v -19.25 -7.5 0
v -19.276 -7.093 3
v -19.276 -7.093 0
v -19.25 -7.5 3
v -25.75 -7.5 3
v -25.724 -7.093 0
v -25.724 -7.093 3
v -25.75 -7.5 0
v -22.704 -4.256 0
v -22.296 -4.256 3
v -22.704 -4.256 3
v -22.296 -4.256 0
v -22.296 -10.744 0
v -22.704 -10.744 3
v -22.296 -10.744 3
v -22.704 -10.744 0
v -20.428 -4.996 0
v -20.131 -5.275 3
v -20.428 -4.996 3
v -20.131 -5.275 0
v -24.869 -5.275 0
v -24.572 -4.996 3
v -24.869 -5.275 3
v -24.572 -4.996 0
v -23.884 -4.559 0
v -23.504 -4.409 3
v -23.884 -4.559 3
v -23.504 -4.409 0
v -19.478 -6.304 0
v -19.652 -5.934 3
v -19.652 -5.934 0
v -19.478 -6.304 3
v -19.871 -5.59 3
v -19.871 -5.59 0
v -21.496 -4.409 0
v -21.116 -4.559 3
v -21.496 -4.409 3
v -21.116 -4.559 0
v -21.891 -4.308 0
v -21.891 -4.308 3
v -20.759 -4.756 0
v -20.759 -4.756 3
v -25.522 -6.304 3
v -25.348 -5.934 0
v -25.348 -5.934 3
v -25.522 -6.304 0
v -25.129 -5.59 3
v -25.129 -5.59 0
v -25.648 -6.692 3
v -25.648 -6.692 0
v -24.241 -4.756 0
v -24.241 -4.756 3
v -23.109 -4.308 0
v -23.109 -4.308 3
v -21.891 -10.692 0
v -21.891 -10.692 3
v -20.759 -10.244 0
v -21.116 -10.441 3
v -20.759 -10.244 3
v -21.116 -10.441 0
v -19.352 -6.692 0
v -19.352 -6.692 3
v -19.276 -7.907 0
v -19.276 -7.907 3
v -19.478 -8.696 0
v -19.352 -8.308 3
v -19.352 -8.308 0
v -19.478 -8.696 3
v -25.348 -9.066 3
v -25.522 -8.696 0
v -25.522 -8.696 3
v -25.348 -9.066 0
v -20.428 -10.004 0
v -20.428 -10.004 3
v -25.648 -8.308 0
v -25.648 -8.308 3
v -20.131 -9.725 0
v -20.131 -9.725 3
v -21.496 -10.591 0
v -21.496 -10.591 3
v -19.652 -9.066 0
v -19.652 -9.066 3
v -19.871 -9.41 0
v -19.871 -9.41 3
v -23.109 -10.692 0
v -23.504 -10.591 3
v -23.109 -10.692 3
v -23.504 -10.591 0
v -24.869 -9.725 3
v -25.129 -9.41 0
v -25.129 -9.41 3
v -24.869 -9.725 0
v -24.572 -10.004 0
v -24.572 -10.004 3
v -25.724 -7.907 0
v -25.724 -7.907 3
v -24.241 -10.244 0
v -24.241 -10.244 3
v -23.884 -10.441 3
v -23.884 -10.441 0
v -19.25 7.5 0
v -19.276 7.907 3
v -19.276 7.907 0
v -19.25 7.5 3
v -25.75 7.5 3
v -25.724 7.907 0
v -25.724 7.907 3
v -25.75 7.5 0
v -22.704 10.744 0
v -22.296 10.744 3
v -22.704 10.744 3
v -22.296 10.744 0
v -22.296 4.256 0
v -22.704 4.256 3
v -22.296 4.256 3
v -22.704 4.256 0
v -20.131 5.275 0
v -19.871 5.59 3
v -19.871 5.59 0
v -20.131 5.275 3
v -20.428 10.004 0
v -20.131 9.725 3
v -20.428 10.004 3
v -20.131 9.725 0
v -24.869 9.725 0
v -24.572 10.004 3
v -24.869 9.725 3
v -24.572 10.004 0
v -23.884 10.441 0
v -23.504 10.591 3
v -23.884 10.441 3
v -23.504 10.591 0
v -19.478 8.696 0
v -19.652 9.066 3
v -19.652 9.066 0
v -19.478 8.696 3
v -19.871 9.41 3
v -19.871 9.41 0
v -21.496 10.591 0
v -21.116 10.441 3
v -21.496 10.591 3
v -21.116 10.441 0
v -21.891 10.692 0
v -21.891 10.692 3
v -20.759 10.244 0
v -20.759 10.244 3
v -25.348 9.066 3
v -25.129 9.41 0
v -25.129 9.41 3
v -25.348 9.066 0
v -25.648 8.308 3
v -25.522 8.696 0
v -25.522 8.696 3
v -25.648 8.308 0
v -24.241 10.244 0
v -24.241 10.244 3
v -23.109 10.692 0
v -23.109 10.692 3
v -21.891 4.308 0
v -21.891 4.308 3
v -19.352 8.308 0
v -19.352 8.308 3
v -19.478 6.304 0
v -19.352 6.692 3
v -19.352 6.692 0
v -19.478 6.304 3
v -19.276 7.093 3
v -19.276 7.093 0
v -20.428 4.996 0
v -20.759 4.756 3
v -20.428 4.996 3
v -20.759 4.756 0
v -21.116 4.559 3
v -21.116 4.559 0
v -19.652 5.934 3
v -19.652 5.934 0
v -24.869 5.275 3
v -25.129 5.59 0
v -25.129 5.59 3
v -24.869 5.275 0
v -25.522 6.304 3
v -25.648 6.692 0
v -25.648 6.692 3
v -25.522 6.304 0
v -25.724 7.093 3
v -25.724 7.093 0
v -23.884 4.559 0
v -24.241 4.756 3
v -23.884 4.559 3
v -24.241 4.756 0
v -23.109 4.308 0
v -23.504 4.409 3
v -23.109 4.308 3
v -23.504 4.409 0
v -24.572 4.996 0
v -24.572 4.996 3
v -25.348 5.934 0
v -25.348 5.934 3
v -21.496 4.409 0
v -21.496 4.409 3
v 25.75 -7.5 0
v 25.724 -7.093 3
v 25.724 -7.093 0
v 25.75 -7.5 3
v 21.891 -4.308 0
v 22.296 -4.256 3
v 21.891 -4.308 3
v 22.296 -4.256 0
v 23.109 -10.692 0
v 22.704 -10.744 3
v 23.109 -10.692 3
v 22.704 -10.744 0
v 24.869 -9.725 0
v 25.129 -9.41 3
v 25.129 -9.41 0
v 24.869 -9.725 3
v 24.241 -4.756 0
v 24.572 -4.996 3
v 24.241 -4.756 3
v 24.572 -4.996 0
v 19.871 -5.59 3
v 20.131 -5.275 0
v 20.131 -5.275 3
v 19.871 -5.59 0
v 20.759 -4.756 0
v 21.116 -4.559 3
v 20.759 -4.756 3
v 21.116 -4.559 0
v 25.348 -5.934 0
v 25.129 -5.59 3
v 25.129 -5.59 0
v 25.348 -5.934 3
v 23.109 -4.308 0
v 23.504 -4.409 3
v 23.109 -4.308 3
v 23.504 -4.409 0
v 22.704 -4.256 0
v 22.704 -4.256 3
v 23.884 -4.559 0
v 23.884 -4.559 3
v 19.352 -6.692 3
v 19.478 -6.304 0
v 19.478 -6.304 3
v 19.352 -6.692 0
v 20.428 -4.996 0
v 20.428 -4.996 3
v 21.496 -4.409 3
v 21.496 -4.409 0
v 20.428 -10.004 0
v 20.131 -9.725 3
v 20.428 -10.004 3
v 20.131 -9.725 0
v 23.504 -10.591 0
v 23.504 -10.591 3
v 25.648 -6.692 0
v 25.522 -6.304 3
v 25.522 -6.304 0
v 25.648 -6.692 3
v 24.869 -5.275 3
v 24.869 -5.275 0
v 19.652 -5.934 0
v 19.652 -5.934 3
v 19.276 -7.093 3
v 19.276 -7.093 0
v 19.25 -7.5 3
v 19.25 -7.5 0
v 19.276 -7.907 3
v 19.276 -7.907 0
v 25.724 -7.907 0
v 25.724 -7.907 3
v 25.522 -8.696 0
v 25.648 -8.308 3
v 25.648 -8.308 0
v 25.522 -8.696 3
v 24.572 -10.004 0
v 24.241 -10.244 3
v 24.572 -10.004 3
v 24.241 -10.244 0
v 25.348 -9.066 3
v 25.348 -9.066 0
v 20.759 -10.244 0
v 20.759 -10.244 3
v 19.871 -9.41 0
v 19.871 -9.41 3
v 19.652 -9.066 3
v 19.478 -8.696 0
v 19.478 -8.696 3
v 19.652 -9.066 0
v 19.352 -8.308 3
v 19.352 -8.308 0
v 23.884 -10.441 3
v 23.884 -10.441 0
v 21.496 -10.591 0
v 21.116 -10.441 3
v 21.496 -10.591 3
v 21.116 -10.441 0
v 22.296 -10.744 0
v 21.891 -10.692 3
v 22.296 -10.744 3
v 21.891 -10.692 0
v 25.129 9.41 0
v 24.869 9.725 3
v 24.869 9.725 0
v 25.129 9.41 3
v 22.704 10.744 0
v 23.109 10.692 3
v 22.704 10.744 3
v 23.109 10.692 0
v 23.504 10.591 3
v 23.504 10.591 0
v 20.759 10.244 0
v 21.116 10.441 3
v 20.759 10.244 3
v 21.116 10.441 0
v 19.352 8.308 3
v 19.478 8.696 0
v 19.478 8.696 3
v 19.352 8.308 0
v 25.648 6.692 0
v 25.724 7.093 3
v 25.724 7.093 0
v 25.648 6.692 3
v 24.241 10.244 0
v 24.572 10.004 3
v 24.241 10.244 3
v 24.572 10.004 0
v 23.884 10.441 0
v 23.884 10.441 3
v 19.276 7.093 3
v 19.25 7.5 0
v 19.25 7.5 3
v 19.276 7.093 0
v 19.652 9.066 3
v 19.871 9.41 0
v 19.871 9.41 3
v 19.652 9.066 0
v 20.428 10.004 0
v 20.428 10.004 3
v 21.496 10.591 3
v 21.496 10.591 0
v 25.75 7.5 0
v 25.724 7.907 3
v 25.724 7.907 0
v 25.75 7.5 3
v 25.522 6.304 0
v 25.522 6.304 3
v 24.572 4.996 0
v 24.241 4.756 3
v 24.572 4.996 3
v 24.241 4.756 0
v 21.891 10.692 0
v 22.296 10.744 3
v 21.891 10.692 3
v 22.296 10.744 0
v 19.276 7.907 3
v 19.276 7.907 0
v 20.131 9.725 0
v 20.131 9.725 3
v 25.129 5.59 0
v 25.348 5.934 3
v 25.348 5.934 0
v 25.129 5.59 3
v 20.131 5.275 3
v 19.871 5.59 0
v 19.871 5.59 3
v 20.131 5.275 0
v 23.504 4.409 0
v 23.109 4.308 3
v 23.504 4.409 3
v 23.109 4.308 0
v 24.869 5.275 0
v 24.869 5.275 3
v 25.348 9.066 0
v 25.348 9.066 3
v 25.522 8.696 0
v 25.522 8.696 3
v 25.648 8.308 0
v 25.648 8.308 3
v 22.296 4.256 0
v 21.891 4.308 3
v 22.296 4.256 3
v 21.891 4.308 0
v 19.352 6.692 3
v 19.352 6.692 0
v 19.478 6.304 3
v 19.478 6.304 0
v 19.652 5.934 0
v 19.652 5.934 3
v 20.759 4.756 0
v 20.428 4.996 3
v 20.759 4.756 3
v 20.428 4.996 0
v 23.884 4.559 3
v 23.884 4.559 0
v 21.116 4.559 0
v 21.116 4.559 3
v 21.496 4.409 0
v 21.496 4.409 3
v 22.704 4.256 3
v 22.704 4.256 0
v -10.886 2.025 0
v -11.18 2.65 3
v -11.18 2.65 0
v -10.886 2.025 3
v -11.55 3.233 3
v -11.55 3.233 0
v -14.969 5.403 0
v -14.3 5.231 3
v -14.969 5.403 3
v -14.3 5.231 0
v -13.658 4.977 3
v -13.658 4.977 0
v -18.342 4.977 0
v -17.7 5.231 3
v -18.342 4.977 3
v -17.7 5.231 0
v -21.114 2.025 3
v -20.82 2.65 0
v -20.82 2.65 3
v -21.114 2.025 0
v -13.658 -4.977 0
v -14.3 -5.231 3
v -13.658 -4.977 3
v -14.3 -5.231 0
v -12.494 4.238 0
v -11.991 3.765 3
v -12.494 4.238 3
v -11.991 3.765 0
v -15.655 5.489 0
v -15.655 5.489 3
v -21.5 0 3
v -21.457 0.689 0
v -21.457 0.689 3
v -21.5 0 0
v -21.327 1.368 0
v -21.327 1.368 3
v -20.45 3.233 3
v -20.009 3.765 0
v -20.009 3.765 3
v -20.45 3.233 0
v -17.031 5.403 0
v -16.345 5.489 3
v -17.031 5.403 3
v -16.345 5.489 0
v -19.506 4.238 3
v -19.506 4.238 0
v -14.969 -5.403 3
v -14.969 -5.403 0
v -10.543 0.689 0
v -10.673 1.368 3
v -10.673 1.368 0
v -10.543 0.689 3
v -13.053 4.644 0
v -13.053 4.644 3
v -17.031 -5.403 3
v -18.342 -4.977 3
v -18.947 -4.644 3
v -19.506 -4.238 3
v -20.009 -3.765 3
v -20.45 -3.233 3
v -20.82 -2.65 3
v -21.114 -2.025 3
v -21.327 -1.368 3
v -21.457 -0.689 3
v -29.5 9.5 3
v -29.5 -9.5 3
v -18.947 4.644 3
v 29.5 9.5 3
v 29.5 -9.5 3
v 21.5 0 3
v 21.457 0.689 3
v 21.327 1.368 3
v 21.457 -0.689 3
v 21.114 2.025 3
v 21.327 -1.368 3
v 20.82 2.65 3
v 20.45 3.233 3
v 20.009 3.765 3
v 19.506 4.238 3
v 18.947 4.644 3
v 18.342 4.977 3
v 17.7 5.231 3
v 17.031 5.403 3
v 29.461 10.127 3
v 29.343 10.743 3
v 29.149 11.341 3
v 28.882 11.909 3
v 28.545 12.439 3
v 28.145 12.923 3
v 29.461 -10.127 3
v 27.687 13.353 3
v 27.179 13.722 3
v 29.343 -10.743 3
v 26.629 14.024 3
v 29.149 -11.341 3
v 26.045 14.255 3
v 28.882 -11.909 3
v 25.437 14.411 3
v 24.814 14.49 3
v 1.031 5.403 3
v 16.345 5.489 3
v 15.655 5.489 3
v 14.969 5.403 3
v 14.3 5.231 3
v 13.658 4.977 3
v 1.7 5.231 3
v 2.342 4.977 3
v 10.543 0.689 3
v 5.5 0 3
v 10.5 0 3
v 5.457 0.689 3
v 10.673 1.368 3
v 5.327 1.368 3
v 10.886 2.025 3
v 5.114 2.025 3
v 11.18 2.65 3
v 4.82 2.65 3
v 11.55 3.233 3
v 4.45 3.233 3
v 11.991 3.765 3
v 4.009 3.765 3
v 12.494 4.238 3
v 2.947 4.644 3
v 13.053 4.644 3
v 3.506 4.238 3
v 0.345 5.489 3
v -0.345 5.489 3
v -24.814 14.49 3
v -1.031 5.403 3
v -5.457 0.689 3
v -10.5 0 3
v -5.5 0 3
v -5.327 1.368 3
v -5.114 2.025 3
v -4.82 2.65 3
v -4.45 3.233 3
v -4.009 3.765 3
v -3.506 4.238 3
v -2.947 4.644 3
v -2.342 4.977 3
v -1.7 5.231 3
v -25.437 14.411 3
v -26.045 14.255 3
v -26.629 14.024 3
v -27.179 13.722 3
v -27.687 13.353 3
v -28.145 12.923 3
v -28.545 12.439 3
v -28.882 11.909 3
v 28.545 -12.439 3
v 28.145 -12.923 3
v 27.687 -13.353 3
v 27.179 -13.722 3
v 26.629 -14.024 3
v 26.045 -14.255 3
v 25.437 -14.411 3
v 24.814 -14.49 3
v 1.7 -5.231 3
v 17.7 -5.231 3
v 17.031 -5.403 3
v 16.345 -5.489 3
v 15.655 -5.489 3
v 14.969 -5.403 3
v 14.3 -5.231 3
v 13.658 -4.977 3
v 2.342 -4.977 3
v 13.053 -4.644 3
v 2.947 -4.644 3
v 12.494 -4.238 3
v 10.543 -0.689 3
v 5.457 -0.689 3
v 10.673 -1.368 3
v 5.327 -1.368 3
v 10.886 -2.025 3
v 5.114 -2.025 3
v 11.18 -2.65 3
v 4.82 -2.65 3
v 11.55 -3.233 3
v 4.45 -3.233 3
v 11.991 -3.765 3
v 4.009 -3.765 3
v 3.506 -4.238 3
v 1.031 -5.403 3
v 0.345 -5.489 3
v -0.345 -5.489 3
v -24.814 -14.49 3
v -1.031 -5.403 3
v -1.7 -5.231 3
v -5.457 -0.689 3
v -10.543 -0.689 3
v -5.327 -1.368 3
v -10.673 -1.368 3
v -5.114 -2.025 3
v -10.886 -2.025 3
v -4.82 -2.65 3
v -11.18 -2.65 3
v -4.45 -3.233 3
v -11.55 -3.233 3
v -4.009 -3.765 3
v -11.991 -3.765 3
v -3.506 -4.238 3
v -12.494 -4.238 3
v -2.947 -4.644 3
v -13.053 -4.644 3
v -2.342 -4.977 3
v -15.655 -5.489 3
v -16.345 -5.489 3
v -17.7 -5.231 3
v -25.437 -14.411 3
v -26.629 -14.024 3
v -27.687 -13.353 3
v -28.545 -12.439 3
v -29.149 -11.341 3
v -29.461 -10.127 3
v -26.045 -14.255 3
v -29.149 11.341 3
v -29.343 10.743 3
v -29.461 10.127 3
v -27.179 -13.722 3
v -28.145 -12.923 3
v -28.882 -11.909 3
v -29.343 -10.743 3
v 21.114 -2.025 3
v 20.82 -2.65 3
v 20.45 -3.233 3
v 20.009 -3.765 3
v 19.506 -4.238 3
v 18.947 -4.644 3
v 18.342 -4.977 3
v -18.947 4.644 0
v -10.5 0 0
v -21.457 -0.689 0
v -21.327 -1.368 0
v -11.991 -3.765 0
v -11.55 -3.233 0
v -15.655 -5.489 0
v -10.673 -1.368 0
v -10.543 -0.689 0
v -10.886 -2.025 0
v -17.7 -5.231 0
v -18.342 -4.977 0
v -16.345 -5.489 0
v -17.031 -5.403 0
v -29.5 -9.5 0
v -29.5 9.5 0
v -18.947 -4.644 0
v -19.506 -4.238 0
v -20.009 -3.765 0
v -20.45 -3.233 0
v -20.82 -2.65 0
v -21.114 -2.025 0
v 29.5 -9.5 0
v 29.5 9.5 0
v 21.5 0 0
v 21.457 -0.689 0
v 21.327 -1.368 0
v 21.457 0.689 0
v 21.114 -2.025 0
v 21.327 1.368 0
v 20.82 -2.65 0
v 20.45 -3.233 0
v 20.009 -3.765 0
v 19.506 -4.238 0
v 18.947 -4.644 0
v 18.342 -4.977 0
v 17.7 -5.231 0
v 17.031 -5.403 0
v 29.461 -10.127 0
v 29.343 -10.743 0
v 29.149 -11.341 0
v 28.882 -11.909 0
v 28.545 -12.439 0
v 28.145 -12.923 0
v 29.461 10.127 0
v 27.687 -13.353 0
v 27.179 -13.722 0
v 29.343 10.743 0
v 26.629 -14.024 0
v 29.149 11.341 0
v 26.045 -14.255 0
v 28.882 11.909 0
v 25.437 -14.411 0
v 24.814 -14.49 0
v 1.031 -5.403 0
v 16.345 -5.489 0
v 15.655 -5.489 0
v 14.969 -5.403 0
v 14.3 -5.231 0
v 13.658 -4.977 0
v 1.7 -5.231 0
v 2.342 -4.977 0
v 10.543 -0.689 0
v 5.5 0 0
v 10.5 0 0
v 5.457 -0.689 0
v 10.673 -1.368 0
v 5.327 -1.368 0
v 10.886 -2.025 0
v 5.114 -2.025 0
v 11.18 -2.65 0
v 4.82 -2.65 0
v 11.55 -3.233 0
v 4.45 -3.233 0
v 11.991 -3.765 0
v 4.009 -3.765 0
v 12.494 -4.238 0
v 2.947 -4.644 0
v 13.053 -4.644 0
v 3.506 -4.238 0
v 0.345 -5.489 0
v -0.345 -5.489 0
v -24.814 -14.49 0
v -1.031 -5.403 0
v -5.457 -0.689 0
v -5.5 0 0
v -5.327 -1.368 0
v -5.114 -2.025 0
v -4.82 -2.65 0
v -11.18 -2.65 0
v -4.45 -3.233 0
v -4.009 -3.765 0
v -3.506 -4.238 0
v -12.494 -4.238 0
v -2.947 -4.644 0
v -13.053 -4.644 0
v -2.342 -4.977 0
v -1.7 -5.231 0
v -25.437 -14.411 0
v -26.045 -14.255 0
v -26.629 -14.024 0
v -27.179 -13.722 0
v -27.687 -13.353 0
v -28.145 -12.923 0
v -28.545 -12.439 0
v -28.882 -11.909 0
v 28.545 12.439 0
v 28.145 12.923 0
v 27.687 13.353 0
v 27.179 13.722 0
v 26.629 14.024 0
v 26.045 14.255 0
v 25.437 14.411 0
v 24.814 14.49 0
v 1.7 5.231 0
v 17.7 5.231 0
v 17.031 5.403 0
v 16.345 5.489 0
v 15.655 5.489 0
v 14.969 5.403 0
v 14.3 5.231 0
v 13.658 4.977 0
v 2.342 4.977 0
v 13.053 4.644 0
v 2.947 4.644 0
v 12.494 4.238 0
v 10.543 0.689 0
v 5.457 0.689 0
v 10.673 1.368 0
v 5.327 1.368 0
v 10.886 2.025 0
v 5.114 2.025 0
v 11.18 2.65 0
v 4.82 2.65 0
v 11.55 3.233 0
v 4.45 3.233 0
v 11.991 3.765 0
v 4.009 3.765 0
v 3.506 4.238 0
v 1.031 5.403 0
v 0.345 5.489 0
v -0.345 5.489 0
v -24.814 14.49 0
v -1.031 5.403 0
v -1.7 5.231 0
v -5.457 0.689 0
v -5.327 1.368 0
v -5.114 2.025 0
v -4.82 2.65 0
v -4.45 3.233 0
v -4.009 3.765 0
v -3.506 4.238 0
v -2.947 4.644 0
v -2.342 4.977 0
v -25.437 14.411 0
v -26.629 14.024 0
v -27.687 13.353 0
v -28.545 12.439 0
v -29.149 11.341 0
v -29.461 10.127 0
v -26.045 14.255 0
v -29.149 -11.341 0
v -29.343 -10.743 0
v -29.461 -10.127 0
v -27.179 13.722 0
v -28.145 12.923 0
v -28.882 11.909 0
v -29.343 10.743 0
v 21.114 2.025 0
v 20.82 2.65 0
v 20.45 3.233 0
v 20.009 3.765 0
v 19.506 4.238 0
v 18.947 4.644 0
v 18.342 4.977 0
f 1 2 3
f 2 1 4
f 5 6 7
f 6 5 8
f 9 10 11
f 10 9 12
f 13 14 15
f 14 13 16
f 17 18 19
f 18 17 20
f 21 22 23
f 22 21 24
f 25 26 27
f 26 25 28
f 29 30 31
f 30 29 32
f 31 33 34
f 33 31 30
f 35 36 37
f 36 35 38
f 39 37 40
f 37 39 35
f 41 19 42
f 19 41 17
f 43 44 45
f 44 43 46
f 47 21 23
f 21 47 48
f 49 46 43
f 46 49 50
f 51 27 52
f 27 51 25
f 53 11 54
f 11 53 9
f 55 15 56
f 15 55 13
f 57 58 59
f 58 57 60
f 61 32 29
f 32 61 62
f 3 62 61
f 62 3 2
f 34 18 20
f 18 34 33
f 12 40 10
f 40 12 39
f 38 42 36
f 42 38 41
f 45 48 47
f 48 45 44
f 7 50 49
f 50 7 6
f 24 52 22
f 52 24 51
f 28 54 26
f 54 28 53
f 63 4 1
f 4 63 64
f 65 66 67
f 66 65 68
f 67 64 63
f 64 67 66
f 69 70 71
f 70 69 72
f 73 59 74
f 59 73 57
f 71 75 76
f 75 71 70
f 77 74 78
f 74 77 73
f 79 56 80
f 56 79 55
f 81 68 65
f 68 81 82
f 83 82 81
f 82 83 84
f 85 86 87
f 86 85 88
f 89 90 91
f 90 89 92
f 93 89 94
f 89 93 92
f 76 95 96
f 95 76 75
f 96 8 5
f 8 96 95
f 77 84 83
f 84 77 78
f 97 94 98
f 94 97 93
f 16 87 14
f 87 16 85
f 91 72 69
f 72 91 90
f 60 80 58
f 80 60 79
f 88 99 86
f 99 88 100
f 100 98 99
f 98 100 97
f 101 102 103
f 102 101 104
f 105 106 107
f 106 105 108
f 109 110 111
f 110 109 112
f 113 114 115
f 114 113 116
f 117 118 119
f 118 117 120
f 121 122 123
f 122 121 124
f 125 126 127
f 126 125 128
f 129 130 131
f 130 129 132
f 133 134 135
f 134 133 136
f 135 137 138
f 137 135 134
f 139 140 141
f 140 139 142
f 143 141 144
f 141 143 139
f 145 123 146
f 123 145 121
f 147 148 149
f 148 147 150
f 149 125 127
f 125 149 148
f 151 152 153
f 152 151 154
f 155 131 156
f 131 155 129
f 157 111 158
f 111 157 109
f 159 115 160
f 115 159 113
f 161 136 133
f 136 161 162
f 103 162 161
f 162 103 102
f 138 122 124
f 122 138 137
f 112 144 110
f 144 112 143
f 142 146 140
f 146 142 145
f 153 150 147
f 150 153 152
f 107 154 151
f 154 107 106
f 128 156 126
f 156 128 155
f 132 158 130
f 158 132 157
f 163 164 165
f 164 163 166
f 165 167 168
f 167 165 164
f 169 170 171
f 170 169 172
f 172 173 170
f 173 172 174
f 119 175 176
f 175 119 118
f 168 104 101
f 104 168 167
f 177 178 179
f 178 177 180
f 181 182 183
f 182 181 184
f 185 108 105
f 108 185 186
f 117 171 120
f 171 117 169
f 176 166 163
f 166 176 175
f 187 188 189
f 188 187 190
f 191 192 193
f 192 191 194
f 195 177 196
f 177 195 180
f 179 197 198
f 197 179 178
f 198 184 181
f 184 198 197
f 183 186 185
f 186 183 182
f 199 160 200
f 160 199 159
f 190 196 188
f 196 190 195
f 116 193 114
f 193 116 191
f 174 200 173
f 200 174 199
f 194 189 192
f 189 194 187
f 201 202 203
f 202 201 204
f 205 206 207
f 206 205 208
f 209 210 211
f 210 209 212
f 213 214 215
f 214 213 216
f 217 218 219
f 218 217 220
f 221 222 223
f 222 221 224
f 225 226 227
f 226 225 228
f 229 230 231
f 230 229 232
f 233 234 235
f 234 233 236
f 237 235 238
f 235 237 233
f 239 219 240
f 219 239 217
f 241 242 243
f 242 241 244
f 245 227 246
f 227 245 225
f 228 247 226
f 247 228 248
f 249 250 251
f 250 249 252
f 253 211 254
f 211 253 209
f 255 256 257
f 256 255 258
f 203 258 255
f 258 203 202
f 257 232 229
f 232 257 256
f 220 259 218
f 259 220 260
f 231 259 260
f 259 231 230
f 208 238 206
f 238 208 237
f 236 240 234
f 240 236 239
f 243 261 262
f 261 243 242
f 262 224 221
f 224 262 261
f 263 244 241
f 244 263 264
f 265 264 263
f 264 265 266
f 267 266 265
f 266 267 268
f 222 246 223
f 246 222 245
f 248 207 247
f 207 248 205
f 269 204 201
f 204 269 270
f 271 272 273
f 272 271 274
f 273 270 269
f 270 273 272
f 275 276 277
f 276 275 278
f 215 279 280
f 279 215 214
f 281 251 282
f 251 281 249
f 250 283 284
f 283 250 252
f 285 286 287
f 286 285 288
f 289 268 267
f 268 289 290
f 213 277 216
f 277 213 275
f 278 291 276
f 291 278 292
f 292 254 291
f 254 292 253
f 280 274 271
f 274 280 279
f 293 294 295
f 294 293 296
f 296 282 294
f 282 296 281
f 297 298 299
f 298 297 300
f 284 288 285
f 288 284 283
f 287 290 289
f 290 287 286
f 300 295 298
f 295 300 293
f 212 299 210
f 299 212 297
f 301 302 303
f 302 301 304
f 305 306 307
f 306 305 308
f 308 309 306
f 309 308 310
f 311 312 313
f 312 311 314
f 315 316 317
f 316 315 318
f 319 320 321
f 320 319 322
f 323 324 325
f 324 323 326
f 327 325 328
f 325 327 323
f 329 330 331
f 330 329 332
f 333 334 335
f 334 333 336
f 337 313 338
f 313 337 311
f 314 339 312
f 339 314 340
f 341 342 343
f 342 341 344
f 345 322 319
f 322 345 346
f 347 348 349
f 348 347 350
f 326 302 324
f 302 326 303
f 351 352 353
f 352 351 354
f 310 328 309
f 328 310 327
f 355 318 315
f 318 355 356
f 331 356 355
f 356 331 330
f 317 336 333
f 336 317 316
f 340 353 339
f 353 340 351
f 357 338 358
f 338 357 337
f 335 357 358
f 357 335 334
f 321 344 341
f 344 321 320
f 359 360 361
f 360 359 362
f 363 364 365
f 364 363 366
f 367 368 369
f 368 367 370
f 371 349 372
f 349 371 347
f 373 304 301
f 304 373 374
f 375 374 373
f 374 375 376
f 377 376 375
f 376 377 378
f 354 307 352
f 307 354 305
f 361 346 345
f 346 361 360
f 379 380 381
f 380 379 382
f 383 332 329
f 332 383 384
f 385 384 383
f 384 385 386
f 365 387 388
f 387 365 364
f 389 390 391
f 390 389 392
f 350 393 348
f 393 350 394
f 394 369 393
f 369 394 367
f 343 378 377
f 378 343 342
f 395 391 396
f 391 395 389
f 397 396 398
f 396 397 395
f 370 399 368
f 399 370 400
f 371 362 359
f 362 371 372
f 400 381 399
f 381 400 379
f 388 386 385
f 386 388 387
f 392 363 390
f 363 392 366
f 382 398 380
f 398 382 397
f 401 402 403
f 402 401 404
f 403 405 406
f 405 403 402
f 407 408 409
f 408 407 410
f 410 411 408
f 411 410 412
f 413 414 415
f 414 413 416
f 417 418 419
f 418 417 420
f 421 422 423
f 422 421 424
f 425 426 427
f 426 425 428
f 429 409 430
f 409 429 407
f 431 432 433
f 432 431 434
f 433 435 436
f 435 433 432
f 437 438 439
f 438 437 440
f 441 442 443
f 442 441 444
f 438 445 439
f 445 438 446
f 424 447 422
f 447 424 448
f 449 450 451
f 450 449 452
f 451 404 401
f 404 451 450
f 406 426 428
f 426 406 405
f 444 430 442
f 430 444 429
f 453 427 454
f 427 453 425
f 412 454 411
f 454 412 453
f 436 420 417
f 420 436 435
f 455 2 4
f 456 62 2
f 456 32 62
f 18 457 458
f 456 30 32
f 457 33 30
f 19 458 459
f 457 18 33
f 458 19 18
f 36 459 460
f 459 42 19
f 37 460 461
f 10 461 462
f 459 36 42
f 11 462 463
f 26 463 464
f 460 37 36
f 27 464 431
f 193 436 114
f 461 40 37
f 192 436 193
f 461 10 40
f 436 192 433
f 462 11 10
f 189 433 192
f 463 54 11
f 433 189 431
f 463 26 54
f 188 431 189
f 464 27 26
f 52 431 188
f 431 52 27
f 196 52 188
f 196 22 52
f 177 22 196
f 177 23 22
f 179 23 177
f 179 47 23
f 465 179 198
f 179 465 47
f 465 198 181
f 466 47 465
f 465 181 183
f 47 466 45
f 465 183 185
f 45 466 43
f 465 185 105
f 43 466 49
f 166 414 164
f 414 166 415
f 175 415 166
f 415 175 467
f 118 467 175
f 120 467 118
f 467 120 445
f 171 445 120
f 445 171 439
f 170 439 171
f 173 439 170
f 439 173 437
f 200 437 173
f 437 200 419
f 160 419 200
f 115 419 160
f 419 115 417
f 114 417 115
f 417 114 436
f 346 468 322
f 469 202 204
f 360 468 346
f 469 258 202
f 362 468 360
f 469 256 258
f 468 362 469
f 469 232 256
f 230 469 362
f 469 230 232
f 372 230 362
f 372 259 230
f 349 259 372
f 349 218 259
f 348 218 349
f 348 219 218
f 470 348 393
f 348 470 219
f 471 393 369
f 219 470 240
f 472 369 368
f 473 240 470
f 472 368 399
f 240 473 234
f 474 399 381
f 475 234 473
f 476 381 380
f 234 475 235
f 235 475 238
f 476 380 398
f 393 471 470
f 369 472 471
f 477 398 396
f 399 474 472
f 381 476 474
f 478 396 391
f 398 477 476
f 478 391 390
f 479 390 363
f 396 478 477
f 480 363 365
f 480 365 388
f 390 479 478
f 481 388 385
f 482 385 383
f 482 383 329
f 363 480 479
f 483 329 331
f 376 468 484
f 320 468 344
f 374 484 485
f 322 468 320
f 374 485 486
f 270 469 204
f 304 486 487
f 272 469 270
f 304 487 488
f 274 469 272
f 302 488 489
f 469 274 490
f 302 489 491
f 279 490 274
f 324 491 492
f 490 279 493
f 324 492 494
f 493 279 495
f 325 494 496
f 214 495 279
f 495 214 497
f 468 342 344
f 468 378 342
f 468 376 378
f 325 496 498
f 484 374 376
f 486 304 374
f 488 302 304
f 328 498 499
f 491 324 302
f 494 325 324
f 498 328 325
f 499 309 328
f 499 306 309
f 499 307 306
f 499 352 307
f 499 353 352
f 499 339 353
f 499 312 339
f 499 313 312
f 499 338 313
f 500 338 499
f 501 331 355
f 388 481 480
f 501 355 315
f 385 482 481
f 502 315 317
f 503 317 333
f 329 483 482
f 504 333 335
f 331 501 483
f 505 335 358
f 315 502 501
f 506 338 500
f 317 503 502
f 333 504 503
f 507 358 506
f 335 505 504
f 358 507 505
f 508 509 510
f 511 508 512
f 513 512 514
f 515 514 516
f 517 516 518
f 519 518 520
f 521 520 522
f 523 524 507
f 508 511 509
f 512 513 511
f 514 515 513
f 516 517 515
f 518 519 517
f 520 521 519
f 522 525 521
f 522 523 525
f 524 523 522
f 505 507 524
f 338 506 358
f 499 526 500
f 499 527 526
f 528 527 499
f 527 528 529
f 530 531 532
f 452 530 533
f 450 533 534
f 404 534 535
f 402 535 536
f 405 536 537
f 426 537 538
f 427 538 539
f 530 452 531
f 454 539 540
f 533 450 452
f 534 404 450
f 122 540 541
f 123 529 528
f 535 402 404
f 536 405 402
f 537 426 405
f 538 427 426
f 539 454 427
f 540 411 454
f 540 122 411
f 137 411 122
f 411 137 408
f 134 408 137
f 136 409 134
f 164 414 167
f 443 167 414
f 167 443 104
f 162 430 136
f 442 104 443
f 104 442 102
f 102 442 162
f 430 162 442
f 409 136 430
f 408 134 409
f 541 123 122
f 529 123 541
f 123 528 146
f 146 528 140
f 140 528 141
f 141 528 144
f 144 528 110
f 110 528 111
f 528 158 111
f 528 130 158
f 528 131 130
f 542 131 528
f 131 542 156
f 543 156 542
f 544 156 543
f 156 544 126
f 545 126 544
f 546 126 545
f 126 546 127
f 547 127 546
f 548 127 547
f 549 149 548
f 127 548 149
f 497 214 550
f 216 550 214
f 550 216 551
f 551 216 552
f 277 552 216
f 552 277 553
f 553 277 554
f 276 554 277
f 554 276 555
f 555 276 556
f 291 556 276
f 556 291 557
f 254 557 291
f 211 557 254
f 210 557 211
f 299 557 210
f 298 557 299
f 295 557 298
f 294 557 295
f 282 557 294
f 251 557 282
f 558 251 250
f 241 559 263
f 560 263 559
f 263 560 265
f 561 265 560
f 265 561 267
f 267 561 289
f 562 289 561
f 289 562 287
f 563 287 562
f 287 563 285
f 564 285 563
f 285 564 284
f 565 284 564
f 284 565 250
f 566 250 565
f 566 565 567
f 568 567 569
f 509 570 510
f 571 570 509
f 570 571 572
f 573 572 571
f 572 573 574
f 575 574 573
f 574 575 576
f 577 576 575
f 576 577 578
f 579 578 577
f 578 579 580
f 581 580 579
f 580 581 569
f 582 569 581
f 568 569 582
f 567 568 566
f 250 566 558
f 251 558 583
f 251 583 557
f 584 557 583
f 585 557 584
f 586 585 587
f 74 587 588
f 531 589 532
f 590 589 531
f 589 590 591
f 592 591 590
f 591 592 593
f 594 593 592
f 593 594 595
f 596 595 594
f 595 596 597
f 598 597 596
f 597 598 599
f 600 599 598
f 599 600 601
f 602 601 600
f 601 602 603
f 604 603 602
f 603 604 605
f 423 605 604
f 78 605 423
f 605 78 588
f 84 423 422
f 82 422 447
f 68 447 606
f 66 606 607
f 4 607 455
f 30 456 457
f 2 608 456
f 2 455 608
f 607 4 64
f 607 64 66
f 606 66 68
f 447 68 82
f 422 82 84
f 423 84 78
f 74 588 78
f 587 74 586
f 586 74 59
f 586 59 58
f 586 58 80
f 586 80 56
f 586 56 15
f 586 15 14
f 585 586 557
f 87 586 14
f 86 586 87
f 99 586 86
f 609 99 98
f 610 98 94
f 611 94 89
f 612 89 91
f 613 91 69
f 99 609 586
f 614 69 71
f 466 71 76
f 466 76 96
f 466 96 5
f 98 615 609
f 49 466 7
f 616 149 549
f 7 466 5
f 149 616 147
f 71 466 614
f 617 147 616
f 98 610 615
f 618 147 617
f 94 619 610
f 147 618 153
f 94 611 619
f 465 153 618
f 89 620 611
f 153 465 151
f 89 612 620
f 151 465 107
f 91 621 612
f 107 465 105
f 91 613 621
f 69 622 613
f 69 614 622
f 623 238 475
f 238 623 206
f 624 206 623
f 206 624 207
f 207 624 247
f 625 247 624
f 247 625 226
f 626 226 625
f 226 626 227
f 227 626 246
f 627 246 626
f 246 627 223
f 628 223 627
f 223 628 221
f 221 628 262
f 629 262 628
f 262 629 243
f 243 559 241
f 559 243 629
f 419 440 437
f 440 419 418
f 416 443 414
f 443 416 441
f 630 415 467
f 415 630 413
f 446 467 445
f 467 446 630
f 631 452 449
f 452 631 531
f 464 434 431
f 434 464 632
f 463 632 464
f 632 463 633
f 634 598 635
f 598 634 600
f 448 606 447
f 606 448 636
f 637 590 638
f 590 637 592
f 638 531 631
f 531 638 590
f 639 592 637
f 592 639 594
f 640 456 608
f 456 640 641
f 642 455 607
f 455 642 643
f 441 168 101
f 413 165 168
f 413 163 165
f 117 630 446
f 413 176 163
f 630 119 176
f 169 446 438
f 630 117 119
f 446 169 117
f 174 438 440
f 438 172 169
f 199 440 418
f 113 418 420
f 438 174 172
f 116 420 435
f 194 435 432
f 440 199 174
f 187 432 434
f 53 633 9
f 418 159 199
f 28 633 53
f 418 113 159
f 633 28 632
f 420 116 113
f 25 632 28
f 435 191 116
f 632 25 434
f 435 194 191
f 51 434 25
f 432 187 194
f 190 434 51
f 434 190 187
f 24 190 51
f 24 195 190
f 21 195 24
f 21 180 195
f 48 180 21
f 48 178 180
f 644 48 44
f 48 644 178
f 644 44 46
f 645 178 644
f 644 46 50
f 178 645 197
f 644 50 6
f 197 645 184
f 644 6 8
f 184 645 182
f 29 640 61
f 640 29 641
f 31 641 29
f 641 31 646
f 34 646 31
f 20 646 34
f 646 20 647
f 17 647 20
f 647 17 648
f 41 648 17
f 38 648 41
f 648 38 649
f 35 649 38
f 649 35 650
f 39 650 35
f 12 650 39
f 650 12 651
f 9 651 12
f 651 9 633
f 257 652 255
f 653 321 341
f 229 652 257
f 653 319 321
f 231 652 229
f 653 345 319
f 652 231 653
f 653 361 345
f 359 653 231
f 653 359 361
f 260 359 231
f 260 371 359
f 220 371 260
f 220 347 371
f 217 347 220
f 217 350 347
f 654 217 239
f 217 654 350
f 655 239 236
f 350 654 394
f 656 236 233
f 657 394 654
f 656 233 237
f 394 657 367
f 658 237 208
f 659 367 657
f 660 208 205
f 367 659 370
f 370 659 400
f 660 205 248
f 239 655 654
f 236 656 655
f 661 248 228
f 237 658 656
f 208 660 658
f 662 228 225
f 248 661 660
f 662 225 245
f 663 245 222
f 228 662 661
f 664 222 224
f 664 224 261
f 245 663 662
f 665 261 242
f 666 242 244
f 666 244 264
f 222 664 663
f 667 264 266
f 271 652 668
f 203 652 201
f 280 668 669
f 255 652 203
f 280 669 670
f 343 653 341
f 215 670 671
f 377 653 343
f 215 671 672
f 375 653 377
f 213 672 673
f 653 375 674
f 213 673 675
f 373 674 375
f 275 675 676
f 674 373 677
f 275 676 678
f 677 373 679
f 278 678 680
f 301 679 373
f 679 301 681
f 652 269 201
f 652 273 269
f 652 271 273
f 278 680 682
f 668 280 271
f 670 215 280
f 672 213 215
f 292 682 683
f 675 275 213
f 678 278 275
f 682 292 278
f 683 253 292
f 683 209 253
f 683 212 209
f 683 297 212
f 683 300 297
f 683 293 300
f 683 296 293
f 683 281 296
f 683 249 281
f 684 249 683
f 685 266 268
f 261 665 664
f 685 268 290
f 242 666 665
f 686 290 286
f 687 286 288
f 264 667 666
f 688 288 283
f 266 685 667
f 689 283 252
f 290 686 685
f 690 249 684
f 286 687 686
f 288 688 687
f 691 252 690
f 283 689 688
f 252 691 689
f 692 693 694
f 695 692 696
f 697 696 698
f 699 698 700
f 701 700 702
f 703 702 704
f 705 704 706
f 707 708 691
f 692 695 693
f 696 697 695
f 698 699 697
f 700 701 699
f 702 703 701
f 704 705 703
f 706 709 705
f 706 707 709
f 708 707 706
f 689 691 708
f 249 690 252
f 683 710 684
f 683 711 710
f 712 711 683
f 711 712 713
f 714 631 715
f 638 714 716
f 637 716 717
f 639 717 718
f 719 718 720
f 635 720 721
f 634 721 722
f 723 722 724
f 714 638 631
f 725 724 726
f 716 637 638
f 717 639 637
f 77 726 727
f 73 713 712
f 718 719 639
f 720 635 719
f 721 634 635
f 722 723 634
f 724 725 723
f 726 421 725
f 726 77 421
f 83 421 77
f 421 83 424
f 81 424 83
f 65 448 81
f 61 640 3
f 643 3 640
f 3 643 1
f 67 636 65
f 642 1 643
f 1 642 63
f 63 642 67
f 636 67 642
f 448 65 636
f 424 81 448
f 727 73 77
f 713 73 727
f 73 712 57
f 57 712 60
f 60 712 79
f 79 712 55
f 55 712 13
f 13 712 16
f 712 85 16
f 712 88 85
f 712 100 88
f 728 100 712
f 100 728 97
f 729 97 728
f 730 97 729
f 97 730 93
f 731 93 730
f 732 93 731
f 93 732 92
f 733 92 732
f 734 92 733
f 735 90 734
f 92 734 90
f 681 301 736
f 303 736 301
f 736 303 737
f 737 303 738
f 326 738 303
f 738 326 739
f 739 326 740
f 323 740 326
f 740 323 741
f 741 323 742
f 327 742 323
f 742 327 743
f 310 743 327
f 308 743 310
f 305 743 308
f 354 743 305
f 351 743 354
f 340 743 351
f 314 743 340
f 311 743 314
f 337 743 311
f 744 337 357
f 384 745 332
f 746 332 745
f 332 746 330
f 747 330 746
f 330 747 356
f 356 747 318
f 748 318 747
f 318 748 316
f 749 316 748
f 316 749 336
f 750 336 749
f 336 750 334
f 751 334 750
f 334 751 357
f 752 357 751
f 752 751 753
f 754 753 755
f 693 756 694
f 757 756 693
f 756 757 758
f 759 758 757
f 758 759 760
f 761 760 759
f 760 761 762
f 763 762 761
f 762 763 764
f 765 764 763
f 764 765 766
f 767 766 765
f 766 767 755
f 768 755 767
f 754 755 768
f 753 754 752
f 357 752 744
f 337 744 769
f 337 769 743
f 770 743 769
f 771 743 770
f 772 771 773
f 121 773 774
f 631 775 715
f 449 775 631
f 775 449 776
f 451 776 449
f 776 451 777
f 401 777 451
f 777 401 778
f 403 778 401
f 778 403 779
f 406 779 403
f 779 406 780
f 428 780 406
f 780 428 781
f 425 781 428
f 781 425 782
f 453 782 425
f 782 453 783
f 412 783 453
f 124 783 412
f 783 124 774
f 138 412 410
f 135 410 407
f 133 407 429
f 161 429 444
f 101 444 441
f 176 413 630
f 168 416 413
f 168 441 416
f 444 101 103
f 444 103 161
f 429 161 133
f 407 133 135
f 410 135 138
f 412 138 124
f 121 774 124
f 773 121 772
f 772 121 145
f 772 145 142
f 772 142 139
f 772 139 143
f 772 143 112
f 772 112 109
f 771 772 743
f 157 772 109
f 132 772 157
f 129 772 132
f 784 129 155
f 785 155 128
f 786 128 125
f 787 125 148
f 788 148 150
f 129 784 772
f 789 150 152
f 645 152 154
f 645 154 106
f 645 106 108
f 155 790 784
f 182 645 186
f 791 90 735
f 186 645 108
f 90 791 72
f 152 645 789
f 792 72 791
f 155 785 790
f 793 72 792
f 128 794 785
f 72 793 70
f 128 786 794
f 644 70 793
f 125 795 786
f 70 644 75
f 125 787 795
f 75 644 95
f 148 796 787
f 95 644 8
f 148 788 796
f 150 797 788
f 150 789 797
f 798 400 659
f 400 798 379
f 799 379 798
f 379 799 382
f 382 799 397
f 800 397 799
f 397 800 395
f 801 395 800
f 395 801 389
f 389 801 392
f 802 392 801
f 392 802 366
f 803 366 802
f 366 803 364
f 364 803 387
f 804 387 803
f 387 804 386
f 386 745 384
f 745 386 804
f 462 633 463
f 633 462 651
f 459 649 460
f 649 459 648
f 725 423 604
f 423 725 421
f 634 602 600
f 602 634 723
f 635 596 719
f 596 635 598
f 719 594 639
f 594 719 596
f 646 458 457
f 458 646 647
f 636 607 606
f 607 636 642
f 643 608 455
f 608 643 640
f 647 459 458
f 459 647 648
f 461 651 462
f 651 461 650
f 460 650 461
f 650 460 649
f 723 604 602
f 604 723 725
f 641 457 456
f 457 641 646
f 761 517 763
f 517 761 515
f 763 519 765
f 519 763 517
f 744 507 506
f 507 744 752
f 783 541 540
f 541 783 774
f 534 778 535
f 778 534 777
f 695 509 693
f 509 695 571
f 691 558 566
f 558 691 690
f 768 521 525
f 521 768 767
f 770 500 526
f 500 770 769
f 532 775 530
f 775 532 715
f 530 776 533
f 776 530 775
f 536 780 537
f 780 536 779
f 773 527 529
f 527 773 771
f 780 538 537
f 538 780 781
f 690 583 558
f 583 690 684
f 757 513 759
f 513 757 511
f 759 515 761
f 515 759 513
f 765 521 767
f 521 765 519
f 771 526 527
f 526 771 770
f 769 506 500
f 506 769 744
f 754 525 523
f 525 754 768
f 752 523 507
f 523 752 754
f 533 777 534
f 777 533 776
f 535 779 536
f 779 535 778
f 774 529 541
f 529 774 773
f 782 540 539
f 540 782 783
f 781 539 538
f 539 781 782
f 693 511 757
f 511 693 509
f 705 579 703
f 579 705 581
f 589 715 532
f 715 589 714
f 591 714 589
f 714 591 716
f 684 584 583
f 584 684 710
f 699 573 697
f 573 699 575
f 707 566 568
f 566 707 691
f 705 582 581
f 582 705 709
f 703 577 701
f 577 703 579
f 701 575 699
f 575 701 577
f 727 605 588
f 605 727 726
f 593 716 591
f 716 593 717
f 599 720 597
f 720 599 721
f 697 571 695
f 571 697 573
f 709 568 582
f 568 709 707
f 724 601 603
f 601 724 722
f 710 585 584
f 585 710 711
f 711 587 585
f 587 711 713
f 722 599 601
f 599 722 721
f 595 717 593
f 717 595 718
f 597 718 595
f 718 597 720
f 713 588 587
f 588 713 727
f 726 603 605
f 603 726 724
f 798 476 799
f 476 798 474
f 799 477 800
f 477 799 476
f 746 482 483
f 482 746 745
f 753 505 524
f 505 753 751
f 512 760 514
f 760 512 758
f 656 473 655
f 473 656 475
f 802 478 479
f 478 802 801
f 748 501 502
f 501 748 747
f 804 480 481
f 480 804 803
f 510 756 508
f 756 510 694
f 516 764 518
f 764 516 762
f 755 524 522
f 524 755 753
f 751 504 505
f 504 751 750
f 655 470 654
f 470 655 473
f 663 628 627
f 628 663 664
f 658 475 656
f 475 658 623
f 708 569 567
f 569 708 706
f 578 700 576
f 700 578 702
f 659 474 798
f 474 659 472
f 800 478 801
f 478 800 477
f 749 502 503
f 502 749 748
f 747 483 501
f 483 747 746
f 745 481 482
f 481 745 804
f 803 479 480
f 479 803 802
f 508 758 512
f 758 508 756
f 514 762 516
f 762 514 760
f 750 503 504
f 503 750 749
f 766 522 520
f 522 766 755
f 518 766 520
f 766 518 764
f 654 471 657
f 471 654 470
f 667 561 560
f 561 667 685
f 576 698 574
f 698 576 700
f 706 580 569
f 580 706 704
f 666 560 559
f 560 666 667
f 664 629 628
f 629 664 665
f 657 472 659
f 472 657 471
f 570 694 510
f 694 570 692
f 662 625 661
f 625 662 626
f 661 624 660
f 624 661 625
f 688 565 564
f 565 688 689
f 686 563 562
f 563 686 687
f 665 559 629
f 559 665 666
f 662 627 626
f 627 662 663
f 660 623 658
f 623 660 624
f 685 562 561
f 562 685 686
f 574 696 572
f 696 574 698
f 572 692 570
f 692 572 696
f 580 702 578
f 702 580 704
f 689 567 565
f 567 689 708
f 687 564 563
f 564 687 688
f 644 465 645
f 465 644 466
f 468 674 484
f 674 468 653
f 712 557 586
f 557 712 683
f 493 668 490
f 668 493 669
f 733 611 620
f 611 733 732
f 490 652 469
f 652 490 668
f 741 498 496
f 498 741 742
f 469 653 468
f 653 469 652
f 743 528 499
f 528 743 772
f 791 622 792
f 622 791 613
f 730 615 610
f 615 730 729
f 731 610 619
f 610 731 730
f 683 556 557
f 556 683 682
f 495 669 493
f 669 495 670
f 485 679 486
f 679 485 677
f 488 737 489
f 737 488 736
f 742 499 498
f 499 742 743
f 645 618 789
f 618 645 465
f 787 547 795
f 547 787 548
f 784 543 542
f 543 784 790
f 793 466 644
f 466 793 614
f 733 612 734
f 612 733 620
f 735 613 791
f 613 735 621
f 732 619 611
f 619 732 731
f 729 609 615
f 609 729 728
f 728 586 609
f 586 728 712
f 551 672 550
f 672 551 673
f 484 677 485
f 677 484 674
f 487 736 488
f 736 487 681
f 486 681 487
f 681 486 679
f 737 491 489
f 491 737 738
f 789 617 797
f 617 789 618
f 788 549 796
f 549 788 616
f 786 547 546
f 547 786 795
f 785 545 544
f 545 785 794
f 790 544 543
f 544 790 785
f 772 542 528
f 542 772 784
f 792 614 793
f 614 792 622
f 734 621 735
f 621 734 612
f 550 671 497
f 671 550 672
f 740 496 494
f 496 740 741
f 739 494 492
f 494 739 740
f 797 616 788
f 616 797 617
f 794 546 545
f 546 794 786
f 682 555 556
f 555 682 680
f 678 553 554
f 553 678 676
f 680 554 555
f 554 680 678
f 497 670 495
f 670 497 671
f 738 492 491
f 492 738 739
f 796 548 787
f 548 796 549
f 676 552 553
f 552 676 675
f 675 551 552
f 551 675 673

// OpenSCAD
$fn = 50;


difference() {
	union() {
		hull() {
			translate(v = [-24.5000000000, 9.5000000000, 0]) {
				cylinder(h = 3, r = 5);
			}
			translate(v = [24.5000000000, 9.5000000000, 0]) {
				cylinder(h = 3, r = 5);
			}
			translate(v = [-24.5000000000, -9.5000000000, 0]) {
				cylinder(h = 3, r = 5);
			}
			translate(v = [24.5000000000, -9.5000000000, 0]) {
				cylinder(h = 3, r = 5);
			}
		}
	}
	union() {
		#translate(v = [-22.5000000000, -7.5000000000, -100.0000000000]) {
			cylinder(h = 200, r = 3.2500000000);
		}
		#translate(v = [-22.5000000000, 7.5000000000, -100.0000000000]) {
			cylinder(h = 200, r = 3.2500000000);
		}
		#translate(v = [22.5000000000, -7.5000000000, -100.0000000000]) {
			cylinder(h = 200, r = 3.2500000000);
		}
		#translate(v = [22.5000000000, 7.5000000000, -100.0000000000]) {
			cylinder(h = 200, r = 3.2500000000);
		}
		#translate(v = [-16.0000000000, 0, 0]) {
			cylinder(h = 3, r = 5.5000000000);
		}
		#cylinder(h = 3, r = 5.5000000000);
		#translate(v = [16.0000000000, 0, 0]) {
			cylinder(h = 3, r = 5.5000000000);
		}
	}
}
